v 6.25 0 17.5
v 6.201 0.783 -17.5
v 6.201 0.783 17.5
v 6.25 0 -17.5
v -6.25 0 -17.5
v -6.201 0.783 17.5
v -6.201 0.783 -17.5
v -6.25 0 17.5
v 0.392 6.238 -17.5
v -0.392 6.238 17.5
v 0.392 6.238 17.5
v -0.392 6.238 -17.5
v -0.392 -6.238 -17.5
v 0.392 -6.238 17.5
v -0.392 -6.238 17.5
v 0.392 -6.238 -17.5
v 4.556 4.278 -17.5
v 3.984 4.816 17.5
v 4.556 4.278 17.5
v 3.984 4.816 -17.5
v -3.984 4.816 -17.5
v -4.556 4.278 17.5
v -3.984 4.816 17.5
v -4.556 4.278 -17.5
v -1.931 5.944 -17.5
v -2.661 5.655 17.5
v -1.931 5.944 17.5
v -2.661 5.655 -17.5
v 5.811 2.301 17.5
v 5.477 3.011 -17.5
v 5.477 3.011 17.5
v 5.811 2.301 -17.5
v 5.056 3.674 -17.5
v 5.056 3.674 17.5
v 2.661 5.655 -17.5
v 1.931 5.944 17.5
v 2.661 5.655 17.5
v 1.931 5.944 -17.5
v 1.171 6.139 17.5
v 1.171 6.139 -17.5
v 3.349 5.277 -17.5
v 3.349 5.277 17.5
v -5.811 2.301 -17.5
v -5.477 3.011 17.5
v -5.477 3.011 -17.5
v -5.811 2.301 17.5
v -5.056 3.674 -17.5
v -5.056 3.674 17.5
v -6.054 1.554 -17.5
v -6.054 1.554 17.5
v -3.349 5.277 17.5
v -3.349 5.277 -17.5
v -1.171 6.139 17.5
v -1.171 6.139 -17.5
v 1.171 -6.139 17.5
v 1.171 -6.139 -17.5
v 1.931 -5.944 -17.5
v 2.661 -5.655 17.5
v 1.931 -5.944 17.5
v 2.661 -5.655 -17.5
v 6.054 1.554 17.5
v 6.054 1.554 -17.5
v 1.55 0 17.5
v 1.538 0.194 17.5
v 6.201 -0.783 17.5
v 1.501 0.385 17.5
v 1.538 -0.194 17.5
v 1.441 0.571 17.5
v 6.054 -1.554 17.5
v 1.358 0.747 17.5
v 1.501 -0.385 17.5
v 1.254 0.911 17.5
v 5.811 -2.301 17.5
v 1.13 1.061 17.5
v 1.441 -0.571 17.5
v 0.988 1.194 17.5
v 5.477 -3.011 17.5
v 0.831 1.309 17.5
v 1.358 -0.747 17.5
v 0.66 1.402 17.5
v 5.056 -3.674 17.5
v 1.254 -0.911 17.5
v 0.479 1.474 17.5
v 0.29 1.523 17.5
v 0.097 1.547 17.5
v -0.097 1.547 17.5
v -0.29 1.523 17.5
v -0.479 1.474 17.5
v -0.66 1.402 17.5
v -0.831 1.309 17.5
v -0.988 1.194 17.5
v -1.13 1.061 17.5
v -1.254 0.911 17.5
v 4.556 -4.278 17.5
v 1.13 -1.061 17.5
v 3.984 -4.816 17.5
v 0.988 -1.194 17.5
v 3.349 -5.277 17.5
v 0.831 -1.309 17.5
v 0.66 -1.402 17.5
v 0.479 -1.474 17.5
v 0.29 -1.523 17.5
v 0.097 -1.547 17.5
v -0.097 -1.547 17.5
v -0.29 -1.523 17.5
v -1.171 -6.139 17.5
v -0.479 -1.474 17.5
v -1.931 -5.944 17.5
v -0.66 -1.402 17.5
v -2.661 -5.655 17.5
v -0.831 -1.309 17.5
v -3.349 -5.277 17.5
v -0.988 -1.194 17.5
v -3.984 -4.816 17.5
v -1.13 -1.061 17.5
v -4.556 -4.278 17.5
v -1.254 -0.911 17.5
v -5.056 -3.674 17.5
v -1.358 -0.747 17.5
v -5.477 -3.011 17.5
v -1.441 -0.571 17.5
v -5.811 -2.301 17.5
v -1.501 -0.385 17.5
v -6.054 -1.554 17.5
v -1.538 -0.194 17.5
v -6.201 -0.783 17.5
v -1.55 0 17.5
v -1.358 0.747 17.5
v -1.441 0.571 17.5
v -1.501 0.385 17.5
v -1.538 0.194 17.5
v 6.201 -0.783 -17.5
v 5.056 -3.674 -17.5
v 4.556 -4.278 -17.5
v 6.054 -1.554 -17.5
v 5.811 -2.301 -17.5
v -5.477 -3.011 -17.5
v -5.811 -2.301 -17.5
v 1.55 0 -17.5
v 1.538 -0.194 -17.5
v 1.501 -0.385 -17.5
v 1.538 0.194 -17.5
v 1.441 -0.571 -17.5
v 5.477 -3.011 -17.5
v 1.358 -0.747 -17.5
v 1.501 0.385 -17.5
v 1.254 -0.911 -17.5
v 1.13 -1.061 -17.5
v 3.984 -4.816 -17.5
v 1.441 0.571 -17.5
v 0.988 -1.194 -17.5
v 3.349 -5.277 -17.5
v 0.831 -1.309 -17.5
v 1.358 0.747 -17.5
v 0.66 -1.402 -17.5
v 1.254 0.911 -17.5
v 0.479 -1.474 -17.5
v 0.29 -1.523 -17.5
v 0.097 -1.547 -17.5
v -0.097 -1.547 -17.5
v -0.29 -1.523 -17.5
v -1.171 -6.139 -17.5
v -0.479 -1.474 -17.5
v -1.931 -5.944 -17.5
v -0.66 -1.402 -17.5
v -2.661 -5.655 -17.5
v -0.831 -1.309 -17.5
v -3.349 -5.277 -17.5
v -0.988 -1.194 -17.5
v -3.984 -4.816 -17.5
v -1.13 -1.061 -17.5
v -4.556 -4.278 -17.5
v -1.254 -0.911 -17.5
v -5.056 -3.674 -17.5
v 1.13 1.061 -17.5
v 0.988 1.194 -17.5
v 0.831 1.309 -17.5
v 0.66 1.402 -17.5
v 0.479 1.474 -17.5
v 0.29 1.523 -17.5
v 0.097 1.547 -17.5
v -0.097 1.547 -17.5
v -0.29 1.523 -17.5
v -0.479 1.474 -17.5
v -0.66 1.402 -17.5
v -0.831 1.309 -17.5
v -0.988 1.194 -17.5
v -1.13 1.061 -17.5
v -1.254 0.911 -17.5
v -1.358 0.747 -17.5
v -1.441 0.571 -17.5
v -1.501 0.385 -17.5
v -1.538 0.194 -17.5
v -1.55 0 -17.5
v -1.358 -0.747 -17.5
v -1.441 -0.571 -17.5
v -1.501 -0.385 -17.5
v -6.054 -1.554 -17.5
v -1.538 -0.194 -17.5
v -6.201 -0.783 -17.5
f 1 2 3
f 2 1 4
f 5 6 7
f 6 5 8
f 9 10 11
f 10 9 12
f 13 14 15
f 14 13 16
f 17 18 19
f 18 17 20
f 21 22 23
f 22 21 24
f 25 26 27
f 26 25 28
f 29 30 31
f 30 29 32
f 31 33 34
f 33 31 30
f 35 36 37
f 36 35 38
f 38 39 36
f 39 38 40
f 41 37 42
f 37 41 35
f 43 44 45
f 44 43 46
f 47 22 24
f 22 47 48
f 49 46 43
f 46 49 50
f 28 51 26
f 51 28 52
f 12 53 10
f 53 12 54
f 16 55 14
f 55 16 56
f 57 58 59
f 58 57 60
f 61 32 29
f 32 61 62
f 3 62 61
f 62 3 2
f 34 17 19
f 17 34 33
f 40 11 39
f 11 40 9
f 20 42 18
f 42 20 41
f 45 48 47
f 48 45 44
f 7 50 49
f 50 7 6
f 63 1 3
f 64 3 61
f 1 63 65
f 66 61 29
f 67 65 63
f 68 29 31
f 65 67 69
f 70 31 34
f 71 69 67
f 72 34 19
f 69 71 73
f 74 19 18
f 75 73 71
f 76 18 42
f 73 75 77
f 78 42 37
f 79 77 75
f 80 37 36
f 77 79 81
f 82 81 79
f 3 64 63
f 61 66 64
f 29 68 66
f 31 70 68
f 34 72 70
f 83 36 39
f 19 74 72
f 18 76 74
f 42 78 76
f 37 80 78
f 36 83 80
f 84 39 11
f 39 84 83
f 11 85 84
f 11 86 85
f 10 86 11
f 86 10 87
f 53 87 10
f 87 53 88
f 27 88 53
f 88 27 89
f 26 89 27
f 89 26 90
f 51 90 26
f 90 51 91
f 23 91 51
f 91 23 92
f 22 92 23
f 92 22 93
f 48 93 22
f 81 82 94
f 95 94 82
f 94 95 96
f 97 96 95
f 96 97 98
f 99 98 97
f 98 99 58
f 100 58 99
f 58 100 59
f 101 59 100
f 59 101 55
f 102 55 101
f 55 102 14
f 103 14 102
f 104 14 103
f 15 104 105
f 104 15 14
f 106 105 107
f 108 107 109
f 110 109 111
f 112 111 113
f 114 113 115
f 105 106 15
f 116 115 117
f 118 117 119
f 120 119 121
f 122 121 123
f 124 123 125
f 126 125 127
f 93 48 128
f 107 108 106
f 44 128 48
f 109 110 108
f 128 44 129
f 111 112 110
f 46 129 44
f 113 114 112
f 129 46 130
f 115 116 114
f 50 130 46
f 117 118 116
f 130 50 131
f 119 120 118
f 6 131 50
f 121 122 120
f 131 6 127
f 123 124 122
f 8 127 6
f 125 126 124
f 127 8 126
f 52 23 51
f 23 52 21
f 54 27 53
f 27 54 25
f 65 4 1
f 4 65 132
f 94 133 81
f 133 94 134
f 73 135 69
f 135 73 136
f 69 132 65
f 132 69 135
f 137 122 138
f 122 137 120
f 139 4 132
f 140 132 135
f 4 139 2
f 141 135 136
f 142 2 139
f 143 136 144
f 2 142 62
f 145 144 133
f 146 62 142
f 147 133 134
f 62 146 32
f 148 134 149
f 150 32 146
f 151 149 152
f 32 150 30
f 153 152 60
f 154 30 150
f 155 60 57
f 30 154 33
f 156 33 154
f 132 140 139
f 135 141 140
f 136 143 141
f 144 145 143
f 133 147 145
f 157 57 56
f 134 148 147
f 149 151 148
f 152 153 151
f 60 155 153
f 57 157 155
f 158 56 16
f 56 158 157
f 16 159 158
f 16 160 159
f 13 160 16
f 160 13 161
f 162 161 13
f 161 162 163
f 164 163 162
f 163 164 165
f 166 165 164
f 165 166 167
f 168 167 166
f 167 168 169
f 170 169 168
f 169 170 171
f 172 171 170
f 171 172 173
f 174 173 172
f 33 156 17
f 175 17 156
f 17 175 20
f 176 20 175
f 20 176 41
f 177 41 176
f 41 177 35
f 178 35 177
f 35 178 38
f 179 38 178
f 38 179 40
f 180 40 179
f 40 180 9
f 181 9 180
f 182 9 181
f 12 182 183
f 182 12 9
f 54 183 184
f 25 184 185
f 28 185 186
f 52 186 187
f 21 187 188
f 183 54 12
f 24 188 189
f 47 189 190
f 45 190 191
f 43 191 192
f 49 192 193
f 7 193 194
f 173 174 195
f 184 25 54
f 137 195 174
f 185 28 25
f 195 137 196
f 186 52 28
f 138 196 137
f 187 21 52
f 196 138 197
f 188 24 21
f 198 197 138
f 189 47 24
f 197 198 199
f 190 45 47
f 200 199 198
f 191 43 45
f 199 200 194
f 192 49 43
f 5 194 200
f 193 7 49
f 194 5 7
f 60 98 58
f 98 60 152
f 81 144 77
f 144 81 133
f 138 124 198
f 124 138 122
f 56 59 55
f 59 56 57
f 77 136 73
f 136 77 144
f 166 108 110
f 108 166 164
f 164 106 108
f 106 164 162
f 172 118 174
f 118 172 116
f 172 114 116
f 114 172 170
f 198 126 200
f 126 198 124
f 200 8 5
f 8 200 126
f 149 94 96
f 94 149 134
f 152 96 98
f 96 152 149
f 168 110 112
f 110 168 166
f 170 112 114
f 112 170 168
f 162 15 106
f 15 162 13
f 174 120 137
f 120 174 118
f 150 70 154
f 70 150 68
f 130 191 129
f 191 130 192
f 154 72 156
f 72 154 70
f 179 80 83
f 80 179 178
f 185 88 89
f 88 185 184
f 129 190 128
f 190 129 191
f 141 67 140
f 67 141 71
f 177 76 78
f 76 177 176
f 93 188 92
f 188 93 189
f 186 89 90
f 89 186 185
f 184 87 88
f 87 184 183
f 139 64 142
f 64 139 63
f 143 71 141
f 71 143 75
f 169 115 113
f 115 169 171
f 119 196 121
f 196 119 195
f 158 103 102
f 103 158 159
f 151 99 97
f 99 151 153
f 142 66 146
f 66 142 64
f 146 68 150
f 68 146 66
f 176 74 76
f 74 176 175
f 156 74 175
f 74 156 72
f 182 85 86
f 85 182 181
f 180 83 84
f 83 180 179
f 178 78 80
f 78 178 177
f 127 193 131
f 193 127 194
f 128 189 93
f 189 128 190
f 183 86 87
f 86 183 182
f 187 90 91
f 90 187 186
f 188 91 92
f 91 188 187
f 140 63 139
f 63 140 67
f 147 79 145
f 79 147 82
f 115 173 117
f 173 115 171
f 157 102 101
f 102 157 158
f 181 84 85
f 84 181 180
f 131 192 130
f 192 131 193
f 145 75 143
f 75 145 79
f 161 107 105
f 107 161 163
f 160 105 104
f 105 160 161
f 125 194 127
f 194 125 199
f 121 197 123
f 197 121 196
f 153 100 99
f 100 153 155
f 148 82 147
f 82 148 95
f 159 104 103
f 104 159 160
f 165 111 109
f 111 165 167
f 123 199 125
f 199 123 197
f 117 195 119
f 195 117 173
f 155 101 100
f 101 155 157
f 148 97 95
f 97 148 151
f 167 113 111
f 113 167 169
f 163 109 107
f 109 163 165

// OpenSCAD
$fn = 50;


difference() {
	union() {
		translate(v = [0, 0, -17.5000000000]) {
			cylinder(h = 35, r = 6.2500000000);
		}
	}
	union() {
		translate(v = [0, 0, -100.0000000000]) {
			cylinder(h = 200, r = 1.5500000000);
		}
	}
}
